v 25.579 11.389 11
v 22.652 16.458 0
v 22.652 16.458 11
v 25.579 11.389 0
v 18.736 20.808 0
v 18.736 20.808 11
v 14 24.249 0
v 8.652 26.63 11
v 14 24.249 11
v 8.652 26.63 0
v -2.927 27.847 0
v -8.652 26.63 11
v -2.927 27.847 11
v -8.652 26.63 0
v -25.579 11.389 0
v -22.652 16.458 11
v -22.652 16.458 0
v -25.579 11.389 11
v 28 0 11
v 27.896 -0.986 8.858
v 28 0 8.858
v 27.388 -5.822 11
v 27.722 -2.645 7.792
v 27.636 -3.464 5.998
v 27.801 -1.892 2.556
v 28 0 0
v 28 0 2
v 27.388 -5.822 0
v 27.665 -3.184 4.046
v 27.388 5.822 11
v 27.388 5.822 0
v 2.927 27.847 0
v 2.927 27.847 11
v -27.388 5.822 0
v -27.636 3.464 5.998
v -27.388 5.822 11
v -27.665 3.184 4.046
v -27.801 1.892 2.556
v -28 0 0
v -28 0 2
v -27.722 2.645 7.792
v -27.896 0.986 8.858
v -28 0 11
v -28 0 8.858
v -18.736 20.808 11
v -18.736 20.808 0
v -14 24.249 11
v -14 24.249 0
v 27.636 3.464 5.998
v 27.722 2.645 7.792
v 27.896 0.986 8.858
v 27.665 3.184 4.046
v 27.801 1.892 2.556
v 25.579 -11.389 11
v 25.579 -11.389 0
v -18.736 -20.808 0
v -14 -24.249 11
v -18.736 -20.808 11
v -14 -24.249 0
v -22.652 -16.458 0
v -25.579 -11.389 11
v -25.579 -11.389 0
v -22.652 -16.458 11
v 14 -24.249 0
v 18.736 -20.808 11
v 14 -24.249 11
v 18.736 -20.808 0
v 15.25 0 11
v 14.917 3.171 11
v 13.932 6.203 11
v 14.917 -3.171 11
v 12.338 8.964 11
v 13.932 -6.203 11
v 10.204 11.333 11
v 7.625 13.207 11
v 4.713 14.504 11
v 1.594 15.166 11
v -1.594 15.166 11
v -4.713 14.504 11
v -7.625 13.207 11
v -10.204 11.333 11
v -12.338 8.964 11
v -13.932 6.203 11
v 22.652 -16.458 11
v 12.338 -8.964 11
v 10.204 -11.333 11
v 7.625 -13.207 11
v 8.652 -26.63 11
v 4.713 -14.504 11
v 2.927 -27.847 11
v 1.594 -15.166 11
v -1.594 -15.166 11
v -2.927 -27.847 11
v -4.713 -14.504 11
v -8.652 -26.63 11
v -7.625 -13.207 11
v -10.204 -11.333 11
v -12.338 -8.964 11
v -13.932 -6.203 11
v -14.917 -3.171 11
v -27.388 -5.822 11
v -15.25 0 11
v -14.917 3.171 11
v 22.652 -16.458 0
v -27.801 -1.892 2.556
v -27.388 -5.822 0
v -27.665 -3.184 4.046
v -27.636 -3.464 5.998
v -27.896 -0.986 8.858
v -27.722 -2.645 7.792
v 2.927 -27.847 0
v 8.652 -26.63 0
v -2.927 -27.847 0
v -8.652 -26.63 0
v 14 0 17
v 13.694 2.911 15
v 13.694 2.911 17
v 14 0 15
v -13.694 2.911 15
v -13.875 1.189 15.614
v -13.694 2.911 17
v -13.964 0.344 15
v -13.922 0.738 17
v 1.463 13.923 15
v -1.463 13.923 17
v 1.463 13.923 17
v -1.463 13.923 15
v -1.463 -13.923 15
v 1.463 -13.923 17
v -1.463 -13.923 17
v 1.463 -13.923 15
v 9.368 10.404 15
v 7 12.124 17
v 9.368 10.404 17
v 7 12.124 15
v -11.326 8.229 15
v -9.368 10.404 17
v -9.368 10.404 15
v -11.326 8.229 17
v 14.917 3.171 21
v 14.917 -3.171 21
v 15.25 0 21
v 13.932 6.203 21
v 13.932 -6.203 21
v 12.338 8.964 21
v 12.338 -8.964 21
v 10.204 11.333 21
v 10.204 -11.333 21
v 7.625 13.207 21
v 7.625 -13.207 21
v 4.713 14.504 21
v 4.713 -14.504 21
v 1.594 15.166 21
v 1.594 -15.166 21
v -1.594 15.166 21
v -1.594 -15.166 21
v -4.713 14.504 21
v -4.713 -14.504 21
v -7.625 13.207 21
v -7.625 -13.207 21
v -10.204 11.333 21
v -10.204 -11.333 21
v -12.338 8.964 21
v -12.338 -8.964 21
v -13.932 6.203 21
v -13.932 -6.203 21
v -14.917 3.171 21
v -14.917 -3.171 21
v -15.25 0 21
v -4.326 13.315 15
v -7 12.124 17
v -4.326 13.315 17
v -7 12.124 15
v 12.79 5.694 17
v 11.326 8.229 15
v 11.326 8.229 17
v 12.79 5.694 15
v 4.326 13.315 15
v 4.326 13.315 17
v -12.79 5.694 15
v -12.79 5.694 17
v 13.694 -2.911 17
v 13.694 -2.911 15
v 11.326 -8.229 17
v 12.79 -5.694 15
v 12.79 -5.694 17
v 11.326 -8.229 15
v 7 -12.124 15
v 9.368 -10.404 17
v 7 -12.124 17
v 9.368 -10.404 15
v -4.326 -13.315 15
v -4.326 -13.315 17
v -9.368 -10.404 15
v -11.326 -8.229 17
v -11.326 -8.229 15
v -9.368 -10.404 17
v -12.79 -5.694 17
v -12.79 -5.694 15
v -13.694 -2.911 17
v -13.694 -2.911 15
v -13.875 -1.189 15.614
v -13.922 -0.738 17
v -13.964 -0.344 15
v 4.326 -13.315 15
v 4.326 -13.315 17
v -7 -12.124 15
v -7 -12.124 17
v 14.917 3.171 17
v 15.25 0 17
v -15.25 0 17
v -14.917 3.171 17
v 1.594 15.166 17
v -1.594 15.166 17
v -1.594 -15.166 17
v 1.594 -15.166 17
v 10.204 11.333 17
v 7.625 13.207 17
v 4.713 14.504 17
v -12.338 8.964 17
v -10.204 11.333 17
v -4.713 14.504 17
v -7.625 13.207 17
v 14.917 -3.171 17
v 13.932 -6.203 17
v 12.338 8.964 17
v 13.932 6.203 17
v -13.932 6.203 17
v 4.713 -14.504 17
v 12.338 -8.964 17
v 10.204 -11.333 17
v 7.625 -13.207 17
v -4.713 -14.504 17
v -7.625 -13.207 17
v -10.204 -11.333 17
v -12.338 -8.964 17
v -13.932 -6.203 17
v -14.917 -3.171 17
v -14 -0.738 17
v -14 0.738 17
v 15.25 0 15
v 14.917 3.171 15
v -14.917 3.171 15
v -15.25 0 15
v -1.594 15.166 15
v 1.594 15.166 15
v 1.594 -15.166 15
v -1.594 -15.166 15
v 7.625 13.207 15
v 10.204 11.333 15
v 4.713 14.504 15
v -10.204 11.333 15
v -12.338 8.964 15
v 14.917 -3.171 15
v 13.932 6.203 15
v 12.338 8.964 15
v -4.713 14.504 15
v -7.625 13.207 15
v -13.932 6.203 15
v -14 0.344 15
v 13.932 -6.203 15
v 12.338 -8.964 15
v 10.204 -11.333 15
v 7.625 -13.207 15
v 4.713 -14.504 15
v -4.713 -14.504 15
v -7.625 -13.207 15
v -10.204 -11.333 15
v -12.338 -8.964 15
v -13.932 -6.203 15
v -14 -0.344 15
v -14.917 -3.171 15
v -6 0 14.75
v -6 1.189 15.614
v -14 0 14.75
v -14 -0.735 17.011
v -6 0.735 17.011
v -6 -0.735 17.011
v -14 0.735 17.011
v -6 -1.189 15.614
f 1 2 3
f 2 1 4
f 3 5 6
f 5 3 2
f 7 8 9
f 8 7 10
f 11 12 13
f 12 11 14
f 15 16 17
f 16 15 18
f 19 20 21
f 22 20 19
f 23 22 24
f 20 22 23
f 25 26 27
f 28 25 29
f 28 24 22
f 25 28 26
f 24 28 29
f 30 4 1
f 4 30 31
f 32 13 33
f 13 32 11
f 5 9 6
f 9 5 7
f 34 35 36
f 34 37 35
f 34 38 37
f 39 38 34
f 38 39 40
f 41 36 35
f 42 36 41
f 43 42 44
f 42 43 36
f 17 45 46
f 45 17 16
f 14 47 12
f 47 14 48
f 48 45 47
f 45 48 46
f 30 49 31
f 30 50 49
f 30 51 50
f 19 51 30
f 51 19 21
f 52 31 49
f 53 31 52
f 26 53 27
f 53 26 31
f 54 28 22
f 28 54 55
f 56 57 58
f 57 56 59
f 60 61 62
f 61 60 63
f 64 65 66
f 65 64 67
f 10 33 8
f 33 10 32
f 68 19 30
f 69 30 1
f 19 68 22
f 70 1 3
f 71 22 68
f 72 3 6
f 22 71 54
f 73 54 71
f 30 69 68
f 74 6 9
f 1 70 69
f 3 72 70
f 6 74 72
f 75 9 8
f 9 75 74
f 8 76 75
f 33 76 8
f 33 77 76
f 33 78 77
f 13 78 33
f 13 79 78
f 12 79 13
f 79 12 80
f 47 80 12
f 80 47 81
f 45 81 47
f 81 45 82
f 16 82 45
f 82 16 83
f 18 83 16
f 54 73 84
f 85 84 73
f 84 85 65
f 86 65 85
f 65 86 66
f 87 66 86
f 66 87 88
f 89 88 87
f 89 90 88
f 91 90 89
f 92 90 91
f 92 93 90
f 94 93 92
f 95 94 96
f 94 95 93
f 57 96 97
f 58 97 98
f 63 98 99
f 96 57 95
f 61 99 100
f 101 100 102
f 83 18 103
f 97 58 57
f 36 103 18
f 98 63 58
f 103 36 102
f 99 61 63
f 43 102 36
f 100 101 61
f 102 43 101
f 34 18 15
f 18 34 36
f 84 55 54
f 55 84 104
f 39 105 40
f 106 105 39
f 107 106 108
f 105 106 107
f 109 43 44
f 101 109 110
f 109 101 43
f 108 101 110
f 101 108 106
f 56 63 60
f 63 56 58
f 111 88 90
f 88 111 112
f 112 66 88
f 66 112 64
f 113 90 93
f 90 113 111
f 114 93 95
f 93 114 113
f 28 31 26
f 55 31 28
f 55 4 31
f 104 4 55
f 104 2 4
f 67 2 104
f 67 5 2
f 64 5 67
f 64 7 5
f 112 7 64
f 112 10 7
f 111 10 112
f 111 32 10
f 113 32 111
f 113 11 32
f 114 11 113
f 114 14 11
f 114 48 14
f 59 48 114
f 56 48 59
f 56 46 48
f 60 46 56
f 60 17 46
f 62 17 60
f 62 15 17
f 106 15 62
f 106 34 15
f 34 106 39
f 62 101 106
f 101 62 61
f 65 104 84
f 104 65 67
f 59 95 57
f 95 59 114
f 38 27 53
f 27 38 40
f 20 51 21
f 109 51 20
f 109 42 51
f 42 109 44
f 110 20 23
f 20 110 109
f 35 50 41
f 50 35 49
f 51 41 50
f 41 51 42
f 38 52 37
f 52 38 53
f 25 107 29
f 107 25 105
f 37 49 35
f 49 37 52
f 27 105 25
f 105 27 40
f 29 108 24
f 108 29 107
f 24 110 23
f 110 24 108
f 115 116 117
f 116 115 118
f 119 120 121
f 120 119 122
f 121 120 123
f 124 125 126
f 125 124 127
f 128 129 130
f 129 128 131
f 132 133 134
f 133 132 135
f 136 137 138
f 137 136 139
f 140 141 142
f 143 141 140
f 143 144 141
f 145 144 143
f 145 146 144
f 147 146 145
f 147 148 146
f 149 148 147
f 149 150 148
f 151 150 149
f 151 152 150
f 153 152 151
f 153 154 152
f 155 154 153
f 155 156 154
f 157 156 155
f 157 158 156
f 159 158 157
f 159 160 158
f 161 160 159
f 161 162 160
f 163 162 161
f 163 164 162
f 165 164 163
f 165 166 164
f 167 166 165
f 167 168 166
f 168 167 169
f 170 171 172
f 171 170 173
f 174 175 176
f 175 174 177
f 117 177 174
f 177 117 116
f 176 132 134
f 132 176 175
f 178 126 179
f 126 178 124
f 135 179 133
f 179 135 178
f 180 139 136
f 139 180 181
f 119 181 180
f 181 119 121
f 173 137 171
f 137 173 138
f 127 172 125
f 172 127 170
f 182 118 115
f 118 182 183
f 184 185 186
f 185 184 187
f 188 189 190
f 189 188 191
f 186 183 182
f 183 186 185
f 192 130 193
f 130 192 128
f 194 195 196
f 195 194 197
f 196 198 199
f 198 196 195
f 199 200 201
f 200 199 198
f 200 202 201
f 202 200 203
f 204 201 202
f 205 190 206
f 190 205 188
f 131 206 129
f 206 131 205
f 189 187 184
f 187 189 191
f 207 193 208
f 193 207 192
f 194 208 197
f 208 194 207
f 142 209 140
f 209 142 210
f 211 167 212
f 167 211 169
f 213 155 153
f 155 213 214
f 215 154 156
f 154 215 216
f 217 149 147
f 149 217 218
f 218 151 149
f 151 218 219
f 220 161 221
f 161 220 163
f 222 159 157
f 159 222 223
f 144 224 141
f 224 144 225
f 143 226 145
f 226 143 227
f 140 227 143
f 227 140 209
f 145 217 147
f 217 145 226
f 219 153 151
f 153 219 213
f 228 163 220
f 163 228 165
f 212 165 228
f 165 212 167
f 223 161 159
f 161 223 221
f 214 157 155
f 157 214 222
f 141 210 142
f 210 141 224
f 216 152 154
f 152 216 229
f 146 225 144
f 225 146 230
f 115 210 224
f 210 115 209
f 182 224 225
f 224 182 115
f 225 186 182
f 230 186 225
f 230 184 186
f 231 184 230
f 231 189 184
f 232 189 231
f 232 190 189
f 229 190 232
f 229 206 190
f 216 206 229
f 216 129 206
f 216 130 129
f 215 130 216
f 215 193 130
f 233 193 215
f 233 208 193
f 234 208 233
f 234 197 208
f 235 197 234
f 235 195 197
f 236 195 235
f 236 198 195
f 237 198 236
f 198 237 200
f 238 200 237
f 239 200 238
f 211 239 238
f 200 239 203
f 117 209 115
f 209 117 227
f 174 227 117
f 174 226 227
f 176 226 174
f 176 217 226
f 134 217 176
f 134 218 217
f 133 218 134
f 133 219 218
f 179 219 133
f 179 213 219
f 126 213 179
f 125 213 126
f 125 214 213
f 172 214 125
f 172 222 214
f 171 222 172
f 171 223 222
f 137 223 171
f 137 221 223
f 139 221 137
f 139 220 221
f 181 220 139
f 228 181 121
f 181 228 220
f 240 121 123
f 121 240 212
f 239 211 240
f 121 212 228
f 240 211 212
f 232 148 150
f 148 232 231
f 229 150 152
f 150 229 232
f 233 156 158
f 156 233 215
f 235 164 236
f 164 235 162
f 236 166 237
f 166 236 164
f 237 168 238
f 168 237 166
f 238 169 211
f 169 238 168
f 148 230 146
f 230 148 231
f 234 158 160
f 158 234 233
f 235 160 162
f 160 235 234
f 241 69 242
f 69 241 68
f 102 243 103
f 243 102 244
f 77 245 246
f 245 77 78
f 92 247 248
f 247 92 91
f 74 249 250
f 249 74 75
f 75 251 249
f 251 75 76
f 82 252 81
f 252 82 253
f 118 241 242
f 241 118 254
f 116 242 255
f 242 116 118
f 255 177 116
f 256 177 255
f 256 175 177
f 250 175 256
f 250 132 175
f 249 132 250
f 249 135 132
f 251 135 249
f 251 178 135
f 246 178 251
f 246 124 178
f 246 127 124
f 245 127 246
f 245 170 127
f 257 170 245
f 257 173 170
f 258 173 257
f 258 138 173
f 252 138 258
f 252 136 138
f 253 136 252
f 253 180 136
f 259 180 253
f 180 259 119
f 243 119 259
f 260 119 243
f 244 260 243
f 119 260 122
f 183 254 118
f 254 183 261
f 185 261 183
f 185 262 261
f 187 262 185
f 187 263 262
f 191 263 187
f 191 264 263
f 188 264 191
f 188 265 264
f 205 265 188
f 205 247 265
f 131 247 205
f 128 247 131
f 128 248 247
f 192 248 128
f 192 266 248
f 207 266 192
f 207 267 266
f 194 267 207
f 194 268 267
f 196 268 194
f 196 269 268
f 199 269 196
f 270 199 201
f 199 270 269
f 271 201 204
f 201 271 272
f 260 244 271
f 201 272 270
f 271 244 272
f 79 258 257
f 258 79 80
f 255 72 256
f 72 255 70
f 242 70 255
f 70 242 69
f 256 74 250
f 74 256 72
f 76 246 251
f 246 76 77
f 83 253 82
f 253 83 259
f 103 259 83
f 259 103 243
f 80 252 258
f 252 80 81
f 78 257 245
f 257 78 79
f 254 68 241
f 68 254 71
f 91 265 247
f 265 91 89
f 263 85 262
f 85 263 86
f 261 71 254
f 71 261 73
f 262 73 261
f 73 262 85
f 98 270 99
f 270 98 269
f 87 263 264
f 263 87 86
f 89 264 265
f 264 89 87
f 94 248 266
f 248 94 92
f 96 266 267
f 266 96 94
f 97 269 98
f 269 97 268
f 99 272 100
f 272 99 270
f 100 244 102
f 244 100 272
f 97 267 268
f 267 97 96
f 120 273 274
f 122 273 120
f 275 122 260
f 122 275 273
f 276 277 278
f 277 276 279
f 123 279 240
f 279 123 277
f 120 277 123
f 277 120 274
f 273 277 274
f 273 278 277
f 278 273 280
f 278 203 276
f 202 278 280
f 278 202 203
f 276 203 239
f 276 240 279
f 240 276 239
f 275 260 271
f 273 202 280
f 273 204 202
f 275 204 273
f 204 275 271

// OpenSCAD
screwDriverDiameter = 7;
coatHangerDiameter = 2;
mainDiameter = 28; //end product should be 35 but it will spring out so give room
mainHeight = 10;
sddOff = 2; //screw driver diameter offset
tob = screwDriverDiameter + sddOff * 2; //top of base

//base for the user to hold on to.  Stick a screw driver in the hole to create some leverage
difference(){
    translate([0,0,0])
        cylinder(d=mainDiameter*2 , h=screwDriverDiameter + sddOff*2);
    
    translate([-mainDiameter*1.5,0,screwDriverDiameter/2+ sddOff])
        rotate([0,90,0])
            cylinder(d=screwDriverDiameter, h= mainDiameter*3);
}

//Coat hanger bender section
translate([0,0,tob]){
    difference(){
        union(){
            cylinder(d=mainDiameter, h= mainHeight);
            translate([0,0,mainHeight/2+1])
                cylinder(d=mainDiameter +2.5, h= mainHeight/2 -1);
            translate([0,0,0])
                cylinder(d=mainDiameter + 2.5, h= mainHeight/2 -1);
        }
        translate([- mainDiameter/2,0,5])
            rotate([0,90,0])
                cylinder(d=coatHangerDiameter +.5, h= 8);
    }
}
